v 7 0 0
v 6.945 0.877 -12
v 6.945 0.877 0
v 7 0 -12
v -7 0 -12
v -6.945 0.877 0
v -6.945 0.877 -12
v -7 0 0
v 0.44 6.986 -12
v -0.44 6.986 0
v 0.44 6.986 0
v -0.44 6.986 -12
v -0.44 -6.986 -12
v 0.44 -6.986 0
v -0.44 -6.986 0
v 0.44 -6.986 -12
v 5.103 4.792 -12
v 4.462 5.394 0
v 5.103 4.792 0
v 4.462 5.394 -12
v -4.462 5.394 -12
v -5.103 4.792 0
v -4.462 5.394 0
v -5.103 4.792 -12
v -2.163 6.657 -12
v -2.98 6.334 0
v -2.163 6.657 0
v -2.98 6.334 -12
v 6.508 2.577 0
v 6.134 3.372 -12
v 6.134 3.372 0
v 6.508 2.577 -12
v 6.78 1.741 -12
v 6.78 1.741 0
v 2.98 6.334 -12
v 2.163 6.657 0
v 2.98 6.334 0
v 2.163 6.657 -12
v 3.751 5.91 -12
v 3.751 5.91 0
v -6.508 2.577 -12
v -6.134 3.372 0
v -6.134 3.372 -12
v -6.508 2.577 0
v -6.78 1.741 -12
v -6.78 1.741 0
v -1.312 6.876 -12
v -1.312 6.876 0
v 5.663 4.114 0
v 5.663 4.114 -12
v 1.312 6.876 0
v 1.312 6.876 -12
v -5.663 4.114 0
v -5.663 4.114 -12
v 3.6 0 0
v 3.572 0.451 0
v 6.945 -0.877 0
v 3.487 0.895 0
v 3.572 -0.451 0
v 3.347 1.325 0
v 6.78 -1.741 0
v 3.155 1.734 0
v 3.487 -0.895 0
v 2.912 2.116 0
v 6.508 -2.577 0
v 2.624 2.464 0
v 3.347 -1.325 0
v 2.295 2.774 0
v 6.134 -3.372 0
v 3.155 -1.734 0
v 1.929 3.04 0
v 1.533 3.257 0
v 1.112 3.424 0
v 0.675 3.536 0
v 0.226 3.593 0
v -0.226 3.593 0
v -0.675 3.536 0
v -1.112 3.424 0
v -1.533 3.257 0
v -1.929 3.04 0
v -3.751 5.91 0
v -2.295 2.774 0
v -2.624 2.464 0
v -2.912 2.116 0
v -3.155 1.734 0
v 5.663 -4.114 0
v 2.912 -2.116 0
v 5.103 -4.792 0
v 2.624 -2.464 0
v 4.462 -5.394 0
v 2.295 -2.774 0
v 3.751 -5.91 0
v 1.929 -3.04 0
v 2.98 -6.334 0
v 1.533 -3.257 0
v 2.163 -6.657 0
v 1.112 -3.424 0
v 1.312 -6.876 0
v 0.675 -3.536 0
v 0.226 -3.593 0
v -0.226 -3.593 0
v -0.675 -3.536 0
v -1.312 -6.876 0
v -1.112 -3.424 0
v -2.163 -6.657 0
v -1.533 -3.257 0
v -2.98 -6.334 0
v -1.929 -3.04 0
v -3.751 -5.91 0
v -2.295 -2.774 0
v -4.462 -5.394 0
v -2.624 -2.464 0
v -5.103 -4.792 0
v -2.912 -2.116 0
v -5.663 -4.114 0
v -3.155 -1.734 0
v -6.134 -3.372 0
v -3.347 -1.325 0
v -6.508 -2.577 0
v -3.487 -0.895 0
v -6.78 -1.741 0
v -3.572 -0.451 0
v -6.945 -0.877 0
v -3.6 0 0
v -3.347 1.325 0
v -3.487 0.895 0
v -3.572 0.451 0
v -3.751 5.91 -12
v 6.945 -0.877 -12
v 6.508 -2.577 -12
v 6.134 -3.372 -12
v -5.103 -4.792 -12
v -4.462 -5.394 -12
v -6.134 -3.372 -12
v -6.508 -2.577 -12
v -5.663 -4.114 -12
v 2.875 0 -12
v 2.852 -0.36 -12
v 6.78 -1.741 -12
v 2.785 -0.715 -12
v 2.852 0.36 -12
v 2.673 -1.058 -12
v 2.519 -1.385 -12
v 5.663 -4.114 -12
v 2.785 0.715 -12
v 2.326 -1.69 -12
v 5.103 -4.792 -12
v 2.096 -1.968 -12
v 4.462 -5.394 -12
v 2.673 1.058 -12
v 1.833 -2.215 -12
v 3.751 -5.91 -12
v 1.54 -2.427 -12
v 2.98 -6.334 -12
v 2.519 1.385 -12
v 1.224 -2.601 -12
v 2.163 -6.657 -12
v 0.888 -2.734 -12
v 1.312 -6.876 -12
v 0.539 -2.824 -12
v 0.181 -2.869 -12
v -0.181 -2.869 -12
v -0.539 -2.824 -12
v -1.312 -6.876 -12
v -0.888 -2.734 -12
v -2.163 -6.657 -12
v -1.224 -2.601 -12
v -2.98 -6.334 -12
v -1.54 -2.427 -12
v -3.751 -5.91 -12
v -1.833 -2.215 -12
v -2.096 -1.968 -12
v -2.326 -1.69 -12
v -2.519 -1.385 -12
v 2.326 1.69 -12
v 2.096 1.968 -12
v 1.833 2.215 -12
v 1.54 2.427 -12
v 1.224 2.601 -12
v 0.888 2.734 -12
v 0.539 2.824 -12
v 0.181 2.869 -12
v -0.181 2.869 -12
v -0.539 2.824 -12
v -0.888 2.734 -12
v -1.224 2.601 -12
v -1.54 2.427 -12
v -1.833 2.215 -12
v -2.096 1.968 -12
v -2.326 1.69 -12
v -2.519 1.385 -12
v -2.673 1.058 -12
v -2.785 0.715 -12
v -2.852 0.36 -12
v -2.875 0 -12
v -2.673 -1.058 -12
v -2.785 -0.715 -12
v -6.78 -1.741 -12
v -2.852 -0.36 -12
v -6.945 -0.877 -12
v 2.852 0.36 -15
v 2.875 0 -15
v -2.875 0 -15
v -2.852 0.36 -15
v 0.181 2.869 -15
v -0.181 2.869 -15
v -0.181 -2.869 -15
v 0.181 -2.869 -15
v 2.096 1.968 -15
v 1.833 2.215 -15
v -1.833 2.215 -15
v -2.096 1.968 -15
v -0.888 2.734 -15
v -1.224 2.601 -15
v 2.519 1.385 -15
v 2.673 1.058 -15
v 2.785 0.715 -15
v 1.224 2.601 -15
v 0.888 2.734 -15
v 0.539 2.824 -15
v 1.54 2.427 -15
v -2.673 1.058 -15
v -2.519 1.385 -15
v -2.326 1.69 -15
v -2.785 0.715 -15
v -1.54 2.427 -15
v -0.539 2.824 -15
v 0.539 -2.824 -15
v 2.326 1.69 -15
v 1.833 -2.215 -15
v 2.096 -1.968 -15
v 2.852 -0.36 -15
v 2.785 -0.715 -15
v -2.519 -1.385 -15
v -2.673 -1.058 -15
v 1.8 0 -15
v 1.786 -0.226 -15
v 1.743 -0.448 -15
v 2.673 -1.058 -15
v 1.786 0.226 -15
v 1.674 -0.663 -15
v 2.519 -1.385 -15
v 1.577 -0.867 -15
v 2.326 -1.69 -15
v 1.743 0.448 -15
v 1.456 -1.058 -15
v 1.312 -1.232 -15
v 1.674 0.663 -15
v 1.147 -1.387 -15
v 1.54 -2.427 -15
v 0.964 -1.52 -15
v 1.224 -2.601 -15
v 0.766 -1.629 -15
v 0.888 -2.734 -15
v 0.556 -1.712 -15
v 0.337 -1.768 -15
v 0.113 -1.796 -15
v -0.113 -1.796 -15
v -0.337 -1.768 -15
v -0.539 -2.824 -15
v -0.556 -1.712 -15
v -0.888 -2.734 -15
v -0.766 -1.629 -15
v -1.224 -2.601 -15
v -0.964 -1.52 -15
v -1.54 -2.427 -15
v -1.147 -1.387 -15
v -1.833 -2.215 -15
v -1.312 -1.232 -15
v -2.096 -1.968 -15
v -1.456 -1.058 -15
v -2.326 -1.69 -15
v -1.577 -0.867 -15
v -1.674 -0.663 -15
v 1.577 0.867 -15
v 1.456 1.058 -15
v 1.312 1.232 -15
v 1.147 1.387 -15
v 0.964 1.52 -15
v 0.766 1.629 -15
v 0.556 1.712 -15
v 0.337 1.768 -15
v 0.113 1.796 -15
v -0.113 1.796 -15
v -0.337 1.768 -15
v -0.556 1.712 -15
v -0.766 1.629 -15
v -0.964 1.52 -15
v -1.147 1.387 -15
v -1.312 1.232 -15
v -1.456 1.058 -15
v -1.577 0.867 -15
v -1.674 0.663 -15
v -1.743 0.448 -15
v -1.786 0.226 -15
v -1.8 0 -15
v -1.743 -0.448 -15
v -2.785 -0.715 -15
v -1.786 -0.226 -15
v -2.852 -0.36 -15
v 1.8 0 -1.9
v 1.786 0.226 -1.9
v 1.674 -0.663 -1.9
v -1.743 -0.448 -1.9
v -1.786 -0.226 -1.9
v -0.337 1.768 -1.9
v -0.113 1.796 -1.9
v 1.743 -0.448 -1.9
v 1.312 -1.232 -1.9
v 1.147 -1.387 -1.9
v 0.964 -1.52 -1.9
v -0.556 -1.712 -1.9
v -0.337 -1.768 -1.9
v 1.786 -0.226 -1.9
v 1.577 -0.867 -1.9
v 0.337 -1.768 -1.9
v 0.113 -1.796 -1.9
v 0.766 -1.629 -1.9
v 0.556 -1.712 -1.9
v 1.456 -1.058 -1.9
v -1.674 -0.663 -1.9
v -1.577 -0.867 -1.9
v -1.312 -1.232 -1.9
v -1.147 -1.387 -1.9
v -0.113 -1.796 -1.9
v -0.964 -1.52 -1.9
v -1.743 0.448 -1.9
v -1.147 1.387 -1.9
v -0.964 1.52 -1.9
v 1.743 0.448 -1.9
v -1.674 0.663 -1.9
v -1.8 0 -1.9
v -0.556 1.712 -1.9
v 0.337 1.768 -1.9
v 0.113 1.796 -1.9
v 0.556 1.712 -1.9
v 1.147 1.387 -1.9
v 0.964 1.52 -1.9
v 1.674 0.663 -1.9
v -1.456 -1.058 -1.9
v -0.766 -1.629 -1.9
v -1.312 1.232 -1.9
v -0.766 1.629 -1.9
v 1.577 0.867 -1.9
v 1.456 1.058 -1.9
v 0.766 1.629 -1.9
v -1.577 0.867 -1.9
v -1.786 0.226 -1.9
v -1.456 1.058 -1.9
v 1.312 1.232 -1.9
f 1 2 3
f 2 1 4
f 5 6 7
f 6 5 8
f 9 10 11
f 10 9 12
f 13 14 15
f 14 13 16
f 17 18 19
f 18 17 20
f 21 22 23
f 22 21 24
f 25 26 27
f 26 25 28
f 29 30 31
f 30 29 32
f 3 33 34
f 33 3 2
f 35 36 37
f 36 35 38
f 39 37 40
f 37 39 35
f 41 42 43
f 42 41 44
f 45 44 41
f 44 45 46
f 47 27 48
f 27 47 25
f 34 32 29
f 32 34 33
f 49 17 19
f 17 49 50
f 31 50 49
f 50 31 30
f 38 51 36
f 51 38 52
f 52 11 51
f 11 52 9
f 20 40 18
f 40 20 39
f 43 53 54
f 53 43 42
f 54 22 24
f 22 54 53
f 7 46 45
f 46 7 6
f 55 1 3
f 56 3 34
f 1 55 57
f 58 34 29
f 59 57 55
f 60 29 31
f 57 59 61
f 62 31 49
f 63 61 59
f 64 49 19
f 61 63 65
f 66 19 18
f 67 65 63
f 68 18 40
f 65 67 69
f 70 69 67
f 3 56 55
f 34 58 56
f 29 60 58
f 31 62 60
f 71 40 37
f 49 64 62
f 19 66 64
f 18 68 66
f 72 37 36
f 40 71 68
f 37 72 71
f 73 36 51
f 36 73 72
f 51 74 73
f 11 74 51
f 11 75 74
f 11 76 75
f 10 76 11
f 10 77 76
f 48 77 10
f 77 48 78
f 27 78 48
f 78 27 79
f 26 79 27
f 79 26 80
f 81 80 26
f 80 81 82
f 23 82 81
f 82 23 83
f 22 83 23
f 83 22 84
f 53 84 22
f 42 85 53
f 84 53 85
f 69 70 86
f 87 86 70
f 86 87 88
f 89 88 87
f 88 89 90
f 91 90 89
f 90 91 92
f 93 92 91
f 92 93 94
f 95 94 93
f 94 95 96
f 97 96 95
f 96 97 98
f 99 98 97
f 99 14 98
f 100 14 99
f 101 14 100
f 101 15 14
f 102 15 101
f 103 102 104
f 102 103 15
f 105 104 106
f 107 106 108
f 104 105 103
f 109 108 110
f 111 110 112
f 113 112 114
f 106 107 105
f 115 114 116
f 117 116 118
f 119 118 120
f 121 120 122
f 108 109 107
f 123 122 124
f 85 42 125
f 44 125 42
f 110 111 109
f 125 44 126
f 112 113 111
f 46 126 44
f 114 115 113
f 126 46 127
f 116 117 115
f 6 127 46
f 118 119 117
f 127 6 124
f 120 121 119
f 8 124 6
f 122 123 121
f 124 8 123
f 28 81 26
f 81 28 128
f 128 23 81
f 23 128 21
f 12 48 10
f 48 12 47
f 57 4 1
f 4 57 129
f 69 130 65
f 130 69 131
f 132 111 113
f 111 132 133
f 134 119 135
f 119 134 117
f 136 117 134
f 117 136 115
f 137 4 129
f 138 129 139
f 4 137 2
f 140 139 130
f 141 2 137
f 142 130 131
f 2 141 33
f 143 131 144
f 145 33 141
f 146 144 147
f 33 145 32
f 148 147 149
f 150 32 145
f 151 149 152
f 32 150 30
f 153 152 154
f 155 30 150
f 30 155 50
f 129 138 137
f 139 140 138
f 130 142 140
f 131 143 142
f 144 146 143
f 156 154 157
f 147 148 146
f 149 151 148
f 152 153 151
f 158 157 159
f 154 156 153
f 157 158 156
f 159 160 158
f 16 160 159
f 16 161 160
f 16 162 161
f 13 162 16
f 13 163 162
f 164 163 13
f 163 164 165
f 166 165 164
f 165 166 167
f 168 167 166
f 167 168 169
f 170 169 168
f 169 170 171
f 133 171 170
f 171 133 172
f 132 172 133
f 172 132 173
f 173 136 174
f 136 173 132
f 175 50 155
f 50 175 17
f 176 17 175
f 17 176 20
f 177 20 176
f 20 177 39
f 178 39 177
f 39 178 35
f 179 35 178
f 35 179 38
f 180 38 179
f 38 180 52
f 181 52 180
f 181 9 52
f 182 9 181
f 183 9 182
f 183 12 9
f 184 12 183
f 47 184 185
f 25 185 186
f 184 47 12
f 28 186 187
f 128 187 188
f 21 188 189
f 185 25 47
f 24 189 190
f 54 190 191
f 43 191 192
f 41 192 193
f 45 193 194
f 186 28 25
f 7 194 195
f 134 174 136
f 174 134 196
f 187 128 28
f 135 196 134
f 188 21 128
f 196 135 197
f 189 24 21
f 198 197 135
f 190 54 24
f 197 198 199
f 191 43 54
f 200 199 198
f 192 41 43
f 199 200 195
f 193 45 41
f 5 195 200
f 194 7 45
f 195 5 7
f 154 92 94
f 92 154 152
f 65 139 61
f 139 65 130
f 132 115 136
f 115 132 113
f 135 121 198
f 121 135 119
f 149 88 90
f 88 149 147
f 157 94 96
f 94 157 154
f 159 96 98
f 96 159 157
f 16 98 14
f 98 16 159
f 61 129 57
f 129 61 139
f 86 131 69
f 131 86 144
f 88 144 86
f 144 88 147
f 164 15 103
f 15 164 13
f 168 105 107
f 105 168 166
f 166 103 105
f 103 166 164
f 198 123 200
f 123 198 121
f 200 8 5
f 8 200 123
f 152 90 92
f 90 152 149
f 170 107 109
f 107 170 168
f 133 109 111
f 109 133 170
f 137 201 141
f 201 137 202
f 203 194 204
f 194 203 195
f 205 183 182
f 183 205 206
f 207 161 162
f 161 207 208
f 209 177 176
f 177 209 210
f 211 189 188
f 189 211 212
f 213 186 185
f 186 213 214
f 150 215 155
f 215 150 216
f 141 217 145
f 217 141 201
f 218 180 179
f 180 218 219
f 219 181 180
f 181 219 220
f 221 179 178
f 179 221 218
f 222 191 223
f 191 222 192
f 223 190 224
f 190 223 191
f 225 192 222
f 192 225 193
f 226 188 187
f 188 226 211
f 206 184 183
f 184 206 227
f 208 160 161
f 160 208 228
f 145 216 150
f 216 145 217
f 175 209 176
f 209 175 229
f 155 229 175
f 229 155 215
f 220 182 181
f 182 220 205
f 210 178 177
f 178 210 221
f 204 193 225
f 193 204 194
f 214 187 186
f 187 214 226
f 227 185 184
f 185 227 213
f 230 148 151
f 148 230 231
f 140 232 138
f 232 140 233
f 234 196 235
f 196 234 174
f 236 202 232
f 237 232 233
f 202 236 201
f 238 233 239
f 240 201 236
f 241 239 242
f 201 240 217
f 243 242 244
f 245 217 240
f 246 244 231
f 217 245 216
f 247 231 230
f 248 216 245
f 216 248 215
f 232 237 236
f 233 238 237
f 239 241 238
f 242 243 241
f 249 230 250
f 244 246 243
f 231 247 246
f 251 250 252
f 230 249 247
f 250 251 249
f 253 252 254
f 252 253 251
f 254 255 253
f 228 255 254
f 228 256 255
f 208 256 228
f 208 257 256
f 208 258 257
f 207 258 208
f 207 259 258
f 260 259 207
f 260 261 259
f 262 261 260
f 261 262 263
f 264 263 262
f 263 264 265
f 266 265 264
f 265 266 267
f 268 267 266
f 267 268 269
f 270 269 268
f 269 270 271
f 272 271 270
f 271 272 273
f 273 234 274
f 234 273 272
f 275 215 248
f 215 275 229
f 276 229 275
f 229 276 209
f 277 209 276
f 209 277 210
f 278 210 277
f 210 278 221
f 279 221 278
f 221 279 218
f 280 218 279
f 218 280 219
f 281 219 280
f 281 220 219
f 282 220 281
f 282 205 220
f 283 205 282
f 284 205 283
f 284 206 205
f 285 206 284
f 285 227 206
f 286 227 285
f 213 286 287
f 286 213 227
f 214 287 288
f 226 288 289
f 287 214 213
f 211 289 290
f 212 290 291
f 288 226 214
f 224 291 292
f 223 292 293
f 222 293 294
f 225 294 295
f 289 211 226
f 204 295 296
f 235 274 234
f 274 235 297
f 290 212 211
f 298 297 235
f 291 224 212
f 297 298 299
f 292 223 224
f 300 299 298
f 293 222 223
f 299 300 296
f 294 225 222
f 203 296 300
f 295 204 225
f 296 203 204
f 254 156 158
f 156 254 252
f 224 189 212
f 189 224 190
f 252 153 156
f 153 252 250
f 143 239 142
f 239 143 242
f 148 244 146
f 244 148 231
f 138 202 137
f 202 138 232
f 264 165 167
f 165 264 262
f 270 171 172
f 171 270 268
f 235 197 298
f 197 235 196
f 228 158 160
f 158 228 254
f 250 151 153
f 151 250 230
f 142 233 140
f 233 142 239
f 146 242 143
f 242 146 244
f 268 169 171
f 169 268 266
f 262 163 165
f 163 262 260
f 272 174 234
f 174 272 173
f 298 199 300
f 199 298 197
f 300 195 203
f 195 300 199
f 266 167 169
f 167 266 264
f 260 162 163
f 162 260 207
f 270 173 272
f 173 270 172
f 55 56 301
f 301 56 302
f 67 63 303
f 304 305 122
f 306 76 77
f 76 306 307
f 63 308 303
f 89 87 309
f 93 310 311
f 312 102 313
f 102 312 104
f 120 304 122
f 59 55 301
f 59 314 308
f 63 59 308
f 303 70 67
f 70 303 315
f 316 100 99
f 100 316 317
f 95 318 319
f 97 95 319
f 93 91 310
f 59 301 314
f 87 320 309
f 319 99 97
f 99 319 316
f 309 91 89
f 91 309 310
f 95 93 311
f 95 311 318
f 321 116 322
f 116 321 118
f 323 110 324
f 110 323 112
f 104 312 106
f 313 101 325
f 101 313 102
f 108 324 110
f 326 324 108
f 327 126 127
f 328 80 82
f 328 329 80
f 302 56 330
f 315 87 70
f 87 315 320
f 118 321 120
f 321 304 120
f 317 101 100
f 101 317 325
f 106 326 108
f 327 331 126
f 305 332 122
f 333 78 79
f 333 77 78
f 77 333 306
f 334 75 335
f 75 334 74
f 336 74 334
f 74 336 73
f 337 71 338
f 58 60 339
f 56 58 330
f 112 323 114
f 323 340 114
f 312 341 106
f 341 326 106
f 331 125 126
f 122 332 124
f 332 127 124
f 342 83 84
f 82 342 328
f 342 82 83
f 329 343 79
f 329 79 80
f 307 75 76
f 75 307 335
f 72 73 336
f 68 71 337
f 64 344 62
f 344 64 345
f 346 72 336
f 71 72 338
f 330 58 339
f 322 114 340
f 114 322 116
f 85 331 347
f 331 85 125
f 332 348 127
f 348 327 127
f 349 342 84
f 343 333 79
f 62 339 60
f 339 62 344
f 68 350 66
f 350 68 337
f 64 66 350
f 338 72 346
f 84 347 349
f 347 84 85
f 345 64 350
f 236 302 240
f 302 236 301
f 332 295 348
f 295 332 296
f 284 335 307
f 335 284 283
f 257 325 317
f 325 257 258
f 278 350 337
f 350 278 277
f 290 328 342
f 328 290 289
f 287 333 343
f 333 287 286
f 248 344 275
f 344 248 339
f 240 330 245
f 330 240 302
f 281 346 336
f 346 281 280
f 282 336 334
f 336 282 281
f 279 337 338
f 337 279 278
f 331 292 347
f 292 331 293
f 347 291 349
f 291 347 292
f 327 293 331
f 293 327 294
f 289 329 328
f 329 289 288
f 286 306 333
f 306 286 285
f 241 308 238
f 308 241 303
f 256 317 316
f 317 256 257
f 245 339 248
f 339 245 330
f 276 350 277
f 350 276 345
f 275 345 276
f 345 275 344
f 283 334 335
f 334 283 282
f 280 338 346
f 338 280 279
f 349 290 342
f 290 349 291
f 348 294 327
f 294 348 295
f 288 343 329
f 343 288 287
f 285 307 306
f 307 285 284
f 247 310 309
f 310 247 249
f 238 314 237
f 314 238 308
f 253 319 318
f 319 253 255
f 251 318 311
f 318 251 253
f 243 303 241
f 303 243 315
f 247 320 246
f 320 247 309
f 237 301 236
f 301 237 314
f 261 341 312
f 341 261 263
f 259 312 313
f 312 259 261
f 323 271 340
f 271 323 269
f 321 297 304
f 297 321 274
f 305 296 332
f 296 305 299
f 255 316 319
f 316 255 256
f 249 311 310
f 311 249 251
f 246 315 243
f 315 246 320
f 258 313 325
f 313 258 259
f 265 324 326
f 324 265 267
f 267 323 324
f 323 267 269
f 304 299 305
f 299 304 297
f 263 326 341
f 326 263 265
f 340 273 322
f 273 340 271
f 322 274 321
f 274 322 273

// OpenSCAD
$fn = 50;


difference() {
	union() {
		translate(v = [0, 0, -12.0000000000]) {
			cylinder(h = 12, r = 7.0000000000);
		}
		translate(v = [0, 0, -15.0000000000]) {
			cylinder(h = 15, r = 2.8750000000);
		}
	}
	union() {
		translate(v = [0, 0, 0]) {
			rotate(a = [0, 0, 0]) {
				difference() {
					union() {
						translate(v = [0, 0, -15.0000000000]) {
							cylinder(h = 15, r = 1.5000000000);
						}
						translate(v = [0, 0, -1.9000000000]) {
							cylinder(h = 1.9000000000, r1 = 1.8000000000, r2 = 3.6000000000);
						}
						translate(v = [0, 0, -15.0000000000]) {
							cylinder(h = 15, r = 1.8000000000);
						}
						translate(v = [0, 0, -15.0000000000]) {
							cylinder(h = 15, r = 1.5000000000);
						}
					}
					union();
				}
			}
		}
	}
}
